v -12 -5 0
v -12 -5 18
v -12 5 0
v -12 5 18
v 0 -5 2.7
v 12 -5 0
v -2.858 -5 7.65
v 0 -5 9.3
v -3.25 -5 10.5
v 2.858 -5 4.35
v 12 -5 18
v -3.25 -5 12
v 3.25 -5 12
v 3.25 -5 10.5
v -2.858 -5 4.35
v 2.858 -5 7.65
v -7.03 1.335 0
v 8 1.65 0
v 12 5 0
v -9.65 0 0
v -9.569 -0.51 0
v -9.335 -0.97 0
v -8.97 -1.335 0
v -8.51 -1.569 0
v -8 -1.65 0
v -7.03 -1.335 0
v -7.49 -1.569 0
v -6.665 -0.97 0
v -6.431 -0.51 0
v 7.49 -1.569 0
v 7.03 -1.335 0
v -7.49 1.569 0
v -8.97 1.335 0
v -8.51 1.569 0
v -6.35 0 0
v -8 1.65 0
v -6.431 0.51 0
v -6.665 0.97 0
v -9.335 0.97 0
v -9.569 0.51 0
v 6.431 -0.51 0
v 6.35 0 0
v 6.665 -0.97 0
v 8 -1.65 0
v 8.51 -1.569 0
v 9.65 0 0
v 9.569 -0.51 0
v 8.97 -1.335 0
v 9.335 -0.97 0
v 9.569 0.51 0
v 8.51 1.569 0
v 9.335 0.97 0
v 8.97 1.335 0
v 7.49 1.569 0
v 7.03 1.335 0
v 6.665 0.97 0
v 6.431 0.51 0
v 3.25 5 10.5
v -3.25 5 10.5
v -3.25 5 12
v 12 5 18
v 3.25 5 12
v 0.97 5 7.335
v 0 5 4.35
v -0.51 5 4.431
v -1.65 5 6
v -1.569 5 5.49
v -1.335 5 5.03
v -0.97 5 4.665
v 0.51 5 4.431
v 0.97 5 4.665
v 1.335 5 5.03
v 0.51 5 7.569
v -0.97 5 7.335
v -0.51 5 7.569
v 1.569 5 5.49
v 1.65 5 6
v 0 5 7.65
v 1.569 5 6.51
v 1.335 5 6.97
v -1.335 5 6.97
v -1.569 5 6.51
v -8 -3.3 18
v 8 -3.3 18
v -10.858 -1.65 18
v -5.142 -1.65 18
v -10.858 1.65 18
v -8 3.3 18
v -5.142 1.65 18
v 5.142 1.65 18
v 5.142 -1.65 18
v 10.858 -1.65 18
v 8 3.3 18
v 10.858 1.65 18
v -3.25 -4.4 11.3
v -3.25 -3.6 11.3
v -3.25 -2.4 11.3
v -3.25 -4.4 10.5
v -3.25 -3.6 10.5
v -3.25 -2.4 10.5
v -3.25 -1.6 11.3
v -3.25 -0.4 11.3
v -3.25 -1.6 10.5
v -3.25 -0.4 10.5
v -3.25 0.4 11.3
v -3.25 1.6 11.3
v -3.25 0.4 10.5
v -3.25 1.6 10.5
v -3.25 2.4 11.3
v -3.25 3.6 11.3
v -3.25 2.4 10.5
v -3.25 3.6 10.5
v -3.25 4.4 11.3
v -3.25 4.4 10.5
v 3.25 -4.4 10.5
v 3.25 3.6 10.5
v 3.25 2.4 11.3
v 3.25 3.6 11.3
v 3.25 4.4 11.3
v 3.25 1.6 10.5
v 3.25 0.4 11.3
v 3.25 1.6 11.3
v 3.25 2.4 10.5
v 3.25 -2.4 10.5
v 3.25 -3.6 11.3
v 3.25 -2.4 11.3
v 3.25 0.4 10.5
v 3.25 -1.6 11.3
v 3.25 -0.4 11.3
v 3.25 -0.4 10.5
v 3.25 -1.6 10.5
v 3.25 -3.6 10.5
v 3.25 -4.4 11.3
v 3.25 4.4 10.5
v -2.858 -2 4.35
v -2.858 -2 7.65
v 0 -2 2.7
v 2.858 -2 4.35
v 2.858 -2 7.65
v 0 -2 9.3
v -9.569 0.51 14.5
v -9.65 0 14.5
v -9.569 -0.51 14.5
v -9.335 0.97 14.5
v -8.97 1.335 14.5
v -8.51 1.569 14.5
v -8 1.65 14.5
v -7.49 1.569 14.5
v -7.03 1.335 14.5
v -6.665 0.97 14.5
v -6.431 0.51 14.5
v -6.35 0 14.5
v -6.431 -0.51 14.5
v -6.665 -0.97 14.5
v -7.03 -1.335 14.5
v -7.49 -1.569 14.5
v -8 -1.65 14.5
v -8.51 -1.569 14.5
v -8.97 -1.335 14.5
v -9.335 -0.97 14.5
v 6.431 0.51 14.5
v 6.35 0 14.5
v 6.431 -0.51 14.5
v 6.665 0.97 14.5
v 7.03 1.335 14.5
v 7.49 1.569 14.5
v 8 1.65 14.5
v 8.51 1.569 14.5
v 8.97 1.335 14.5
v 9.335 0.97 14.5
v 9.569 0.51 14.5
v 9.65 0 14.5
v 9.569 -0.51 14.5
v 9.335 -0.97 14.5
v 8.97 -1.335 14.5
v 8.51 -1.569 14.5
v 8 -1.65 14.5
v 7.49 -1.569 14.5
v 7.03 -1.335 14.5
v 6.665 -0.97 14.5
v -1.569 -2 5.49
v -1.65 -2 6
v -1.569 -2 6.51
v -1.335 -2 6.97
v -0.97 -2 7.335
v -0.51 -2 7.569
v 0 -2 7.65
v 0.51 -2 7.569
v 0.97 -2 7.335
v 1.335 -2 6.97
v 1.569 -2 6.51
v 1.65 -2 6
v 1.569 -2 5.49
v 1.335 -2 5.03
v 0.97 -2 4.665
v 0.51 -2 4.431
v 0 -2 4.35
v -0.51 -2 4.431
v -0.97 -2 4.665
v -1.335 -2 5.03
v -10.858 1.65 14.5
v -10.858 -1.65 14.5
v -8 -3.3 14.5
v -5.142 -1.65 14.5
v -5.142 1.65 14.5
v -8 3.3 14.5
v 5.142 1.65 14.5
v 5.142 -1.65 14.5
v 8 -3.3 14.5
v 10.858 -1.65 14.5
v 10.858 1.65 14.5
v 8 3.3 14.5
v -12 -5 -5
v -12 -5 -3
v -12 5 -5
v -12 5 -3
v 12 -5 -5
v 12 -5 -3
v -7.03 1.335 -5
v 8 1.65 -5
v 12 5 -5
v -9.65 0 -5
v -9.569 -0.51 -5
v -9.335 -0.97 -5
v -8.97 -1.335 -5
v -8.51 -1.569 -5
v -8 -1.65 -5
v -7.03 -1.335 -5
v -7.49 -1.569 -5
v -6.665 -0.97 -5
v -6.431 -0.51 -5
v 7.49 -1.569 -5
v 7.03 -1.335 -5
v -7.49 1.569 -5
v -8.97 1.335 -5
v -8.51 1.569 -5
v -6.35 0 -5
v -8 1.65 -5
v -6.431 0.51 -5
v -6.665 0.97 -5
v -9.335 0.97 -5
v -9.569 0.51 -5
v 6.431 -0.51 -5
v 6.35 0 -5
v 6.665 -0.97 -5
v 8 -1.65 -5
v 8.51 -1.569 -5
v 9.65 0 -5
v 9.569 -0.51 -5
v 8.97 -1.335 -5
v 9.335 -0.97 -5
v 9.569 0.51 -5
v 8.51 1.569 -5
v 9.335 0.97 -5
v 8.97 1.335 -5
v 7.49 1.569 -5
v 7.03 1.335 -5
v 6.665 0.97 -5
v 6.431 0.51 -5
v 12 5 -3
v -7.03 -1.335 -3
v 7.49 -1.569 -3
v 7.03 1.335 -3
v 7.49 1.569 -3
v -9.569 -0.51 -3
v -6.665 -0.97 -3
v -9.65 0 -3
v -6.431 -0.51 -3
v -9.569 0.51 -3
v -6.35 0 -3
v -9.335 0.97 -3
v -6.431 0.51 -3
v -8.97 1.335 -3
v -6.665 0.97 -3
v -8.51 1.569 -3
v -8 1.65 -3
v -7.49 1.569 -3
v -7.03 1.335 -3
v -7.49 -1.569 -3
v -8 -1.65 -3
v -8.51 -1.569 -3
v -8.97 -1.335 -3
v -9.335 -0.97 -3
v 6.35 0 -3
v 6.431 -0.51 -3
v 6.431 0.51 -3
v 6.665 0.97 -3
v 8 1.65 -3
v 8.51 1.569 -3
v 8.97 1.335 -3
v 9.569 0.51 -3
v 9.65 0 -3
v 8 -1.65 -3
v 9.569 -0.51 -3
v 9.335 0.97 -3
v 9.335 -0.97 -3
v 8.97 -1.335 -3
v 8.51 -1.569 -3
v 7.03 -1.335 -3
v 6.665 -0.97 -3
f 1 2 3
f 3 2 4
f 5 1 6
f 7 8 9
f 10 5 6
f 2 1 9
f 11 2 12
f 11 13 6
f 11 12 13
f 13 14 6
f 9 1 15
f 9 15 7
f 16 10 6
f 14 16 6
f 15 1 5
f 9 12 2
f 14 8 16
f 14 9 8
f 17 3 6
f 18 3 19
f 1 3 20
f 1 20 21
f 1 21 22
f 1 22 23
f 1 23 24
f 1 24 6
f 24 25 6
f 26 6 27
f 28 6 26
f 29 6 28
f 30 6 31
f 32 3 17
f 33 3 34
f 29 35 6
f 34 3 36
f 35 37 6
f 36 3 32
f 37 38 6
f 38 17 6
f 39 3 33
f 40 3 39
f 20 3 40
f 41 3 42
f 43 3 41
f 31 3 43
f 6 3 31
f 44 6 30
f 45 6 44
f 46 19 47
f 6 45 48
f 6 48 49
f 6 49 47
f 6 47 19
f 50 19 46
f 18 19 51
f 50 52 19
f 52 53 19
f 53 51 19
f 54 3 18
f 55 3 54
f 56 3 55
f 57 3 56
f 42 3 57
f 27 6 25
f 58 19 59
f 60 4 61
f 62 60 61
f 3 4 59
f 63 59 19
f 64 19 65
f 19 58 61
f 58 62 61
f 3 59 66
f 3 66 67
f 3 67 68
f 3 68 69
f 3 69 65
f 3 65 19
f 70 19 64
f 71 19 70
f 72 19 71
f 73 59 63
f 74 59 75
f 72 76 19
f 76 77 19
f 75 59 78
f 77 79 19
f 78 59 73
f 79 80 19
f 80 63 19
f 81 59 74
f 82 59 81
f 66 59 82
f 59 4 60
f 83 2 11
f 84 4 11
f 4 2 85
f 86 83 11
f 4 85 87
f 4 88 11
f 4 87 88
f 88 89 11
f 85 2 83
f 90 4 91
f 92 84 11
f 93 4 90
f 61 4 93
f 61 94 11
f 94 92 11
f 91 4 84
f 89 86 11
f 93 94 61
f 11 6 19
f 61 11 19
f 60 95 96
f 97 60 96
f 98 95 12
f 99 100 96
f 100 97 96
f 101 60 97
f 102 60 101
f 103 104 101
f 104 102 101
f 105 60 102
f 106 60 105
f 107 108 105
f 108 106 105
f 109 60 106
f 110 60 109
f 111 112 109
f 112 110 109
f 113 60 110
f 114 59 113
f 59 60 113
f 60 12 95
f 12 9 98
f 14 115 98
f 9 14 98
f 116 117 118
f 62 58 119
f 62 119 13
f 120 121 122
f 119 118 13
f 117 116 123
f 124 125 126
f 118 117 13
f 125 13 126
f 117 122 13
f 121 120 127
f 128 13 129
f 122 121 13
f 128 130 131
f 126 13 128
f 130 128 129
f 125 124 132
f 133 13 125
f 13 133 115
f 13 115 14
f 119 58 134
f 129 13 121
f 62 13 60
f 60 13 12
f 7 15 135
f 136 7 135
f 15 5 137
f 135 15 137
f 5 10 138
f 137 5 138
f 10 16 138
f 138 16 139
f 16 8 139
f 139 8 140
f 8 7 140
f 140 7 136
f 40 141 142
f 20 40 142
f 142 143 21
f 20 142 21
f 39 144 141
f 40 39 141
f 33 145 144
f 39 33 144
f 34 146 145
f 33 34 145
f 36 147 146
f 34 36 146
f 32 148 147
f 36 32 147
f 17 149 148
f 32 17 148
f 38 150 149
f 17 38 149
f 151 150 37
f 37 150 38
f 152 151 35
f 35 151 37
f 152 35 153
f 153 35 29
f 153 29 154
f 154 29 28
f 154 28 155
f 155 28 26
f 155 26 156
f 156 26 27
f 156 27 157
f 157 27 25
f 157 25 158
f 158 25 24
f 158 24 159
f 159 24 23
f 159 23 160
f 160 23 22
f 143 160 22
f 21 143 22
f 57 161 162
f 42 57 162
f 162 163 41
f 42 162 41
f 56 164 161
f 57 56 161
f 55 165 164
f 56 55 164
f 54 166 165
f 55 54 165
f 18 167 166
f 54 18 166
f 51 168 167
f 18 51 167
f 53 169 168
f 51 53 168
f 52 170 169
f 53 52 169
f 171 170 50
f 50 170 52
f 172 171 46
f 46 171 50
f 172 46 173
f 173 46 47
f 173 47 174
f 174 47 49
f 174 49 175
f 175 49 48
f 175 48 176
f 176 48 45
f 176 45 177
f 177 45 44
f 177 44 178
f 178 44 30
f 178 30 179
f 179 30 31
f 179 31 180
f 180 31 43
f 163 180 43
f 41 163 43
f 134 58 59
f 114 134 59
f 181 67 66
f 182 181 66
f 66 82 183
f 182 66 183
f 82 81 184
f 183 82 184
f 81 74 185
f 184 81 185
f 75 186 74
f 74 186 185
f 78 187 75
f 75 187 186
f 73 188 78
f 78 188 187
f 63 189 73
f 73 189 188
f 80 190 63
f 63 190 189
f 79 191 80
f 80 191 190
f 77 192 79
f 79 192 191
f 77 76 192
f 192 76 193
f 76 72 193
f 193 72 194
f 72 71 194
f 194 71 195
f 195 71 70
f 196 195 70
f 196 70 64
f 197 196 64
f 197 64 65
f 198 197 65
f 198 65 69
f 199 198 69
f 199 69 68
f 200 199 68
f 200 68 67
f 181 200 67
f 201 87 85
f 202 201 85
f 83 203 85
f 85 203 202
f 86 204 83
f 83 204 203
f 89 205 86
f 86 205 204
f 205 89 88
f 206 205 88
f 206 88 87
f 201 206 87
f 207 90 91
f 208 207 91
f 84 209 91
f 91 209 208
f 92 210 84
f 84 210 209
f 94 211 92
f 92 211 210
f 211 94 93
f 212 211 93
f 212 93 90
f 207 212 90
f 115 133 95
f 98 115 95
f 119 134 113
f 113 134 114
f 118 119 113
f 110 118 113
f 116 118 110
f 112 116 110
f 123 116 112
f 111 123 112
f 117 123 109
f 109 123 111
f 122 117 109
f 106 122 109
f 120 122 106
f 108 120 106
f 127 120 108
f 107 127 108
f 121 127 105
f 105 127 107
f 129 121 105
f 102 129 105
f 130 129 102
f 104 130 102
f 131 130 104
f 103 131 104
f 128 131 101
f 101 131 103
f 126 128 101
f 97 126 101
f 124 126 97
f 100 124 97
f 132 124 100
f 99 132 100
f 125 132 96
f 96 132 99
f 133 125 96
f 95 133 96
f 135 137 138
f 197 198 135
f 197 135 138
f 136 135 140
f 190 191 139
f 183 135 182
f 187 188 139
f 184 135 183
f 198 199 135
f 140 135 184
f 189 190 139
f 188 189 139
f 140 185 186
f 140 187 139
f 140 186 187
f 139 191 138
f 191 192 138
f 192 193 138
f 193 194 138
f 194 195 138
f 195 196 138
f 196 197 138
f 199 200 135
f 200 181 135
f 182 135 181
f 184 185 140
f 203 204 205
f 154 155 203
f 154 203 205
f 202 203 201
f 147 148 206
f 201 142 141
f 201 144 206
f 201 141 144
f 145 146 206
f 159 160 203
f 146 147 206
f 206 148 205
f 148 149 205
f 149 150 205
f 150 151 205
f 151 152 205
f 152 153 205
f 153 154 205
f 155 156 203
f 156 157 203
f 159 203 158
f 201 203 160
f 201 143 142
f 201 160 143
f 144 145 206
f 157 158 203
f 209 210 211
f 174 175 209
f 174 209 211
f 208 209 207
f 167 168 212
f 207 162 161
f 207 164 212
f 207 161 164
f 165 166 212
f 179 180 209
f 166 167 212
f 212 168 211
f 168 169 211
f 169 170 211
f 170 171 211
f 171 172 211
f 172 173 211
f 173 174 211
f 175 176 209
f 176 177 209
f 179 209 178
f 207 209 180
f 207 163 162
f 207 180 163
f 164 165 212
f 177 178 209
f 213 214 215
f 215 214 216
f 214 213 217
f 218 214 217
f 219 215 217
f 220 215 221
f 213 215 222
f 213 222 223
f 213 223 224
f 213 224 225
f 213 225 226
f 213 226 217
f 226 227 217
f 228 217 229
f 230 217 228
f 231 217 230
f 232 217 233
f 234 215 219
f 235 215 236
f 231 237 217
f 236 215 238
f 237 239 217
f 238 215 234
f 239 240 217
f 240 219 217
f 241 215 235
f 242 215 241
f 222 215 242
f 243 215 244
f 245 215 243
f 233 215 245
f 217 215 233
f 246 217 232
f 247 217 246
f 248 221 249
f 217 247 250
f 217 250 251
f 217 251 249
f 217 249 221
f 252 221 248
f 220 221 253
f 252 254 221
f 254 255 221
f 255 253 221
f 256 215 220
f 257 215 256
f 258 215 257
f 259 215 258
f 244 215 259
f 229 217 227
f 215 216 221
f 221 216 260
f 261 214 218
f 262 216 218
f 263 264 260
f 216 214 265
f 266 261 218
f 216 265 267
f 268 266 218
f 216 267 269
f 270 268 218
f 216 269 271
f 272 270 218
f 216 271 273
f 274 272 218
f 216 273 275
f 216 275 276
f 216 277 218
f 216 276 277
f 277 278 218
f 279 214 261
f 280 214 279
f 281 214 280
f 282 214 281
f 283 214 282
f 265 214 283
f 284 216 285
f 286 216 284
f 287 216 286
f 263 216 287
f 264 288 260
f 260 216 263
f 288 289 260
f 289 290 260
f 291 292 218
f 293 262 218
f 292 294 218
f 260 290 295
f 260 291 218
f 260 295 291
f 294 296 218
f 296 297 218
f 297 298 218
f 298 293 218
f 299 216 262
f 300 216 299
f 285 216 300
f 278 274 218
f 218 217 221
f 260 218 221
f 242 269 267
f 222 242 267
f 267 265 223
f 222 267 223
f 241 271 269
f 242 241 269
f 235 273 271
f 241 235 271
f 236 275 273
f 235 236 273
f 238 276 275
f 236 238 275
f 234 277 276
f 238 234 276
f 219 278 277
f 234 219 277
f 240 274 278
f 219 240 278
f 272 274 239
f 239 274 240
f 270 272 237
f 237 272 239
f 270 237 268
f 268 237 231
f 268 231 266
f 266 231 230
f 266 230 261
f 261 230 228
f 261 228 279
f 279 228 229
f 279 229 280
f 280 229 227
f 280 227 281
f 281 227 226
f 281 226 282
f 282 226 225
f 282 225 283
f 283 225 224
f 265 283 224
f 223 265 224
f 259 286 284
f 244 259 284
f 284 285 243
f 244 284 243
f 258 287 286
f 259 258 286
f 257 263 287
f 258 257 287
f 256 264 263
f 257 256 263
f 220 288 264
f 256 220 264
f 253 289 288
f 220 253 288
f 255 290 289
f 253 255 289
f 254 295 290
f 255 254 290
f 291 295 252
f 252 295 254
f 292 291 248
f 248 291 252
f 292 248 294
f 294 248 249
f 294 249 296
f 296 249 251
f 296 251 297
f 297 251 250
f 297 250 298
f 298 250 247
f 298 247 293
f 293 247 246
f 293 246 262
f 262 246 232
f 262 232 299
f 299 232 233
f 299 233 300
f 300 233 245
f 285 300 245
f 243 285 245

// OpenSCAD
w1=24;
h1=10;
a=4;
b=6.5;
hr1=0.7;
hr2=1.5;
xr1=1.2;
delta=1.1;
r0=1.5*delta;
$fn=20;

module beltclamp(z,nut,belt) {
	translate([0,0,z/2])
	difference() {
		cube([w1,h1,z],true);
		translate([w1/2-a,0,-z/2-0.5]) cylinder(z+1,r=r0);
		translate([-w1/2+a,0,-z/2-0.5]) cylinder(z+1,r=r0);
		if (nut) {
			translate([w1/2-a,0,-0.5]) rotate([0,0,90]) cylinder(5,r=6.6/2,$fn=6);
			translate([-w1/2+a,0,-0.5]) rotate([0,0,90]) cylinder(5,r=6.6/2,$fn=6);
		}
		if (belt) {
			translate([0,0,z-hr1]) cube([b,10,z],true);
			for (i=[0:5]) translate([0,-5+i*2,z-hr2]) cube([b,xr1,z],true);
			translate([0,10,0]) rotate([90,0,0]) cylinder(20,r=r0);
			translate([0,-2,0]) rotate([90,90,0]) cylinder(5,r=6.6/2,$fn=6);
		}
	}
}

//#translate([8,0,-5]) cylinder(25,r=r0);
module stack(hh) {
	beltclamp(9+hh,false,true);
	translate([0,0,9+hh]) beltclamp(6,true,false);
	translate([0,0,-hh-2]) beltclamp(2);
}

module printing(hh) {
	beltclamp(9+hh,false,true);
	translate([0,-h1-5,0]) beltclamp(6,true,false);
	translate([0,h1+5,0]) beltclamp(2);
}

// for freecad positioning
// 3 - толщина стола
stack(3);

// for printing
// 3 - толщина стола
//printing(3);
